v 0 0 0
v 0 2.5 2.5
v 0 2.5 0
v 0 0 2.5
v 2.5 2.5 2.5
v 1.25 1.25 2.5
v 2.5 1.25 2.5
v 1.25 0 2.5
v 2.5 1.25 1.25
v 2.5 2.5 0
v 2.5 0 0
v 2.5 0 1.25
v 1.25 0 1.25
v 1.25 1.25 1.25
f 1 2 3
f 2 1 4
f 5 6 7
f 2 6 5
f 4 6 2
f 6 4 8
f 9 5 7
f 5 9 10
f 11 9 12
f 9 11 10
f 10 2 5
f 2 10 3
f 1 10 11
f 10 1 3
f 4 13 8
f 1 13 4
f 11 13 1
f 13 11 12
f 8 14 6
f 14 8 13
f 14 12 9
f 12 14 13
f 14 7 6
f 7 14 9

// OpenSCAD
difference() {
cube([2.5,2.5,2.5]);

translate([1.25,0,1.25]){
    cube([1.25,1.25,1.25]);
}
}
